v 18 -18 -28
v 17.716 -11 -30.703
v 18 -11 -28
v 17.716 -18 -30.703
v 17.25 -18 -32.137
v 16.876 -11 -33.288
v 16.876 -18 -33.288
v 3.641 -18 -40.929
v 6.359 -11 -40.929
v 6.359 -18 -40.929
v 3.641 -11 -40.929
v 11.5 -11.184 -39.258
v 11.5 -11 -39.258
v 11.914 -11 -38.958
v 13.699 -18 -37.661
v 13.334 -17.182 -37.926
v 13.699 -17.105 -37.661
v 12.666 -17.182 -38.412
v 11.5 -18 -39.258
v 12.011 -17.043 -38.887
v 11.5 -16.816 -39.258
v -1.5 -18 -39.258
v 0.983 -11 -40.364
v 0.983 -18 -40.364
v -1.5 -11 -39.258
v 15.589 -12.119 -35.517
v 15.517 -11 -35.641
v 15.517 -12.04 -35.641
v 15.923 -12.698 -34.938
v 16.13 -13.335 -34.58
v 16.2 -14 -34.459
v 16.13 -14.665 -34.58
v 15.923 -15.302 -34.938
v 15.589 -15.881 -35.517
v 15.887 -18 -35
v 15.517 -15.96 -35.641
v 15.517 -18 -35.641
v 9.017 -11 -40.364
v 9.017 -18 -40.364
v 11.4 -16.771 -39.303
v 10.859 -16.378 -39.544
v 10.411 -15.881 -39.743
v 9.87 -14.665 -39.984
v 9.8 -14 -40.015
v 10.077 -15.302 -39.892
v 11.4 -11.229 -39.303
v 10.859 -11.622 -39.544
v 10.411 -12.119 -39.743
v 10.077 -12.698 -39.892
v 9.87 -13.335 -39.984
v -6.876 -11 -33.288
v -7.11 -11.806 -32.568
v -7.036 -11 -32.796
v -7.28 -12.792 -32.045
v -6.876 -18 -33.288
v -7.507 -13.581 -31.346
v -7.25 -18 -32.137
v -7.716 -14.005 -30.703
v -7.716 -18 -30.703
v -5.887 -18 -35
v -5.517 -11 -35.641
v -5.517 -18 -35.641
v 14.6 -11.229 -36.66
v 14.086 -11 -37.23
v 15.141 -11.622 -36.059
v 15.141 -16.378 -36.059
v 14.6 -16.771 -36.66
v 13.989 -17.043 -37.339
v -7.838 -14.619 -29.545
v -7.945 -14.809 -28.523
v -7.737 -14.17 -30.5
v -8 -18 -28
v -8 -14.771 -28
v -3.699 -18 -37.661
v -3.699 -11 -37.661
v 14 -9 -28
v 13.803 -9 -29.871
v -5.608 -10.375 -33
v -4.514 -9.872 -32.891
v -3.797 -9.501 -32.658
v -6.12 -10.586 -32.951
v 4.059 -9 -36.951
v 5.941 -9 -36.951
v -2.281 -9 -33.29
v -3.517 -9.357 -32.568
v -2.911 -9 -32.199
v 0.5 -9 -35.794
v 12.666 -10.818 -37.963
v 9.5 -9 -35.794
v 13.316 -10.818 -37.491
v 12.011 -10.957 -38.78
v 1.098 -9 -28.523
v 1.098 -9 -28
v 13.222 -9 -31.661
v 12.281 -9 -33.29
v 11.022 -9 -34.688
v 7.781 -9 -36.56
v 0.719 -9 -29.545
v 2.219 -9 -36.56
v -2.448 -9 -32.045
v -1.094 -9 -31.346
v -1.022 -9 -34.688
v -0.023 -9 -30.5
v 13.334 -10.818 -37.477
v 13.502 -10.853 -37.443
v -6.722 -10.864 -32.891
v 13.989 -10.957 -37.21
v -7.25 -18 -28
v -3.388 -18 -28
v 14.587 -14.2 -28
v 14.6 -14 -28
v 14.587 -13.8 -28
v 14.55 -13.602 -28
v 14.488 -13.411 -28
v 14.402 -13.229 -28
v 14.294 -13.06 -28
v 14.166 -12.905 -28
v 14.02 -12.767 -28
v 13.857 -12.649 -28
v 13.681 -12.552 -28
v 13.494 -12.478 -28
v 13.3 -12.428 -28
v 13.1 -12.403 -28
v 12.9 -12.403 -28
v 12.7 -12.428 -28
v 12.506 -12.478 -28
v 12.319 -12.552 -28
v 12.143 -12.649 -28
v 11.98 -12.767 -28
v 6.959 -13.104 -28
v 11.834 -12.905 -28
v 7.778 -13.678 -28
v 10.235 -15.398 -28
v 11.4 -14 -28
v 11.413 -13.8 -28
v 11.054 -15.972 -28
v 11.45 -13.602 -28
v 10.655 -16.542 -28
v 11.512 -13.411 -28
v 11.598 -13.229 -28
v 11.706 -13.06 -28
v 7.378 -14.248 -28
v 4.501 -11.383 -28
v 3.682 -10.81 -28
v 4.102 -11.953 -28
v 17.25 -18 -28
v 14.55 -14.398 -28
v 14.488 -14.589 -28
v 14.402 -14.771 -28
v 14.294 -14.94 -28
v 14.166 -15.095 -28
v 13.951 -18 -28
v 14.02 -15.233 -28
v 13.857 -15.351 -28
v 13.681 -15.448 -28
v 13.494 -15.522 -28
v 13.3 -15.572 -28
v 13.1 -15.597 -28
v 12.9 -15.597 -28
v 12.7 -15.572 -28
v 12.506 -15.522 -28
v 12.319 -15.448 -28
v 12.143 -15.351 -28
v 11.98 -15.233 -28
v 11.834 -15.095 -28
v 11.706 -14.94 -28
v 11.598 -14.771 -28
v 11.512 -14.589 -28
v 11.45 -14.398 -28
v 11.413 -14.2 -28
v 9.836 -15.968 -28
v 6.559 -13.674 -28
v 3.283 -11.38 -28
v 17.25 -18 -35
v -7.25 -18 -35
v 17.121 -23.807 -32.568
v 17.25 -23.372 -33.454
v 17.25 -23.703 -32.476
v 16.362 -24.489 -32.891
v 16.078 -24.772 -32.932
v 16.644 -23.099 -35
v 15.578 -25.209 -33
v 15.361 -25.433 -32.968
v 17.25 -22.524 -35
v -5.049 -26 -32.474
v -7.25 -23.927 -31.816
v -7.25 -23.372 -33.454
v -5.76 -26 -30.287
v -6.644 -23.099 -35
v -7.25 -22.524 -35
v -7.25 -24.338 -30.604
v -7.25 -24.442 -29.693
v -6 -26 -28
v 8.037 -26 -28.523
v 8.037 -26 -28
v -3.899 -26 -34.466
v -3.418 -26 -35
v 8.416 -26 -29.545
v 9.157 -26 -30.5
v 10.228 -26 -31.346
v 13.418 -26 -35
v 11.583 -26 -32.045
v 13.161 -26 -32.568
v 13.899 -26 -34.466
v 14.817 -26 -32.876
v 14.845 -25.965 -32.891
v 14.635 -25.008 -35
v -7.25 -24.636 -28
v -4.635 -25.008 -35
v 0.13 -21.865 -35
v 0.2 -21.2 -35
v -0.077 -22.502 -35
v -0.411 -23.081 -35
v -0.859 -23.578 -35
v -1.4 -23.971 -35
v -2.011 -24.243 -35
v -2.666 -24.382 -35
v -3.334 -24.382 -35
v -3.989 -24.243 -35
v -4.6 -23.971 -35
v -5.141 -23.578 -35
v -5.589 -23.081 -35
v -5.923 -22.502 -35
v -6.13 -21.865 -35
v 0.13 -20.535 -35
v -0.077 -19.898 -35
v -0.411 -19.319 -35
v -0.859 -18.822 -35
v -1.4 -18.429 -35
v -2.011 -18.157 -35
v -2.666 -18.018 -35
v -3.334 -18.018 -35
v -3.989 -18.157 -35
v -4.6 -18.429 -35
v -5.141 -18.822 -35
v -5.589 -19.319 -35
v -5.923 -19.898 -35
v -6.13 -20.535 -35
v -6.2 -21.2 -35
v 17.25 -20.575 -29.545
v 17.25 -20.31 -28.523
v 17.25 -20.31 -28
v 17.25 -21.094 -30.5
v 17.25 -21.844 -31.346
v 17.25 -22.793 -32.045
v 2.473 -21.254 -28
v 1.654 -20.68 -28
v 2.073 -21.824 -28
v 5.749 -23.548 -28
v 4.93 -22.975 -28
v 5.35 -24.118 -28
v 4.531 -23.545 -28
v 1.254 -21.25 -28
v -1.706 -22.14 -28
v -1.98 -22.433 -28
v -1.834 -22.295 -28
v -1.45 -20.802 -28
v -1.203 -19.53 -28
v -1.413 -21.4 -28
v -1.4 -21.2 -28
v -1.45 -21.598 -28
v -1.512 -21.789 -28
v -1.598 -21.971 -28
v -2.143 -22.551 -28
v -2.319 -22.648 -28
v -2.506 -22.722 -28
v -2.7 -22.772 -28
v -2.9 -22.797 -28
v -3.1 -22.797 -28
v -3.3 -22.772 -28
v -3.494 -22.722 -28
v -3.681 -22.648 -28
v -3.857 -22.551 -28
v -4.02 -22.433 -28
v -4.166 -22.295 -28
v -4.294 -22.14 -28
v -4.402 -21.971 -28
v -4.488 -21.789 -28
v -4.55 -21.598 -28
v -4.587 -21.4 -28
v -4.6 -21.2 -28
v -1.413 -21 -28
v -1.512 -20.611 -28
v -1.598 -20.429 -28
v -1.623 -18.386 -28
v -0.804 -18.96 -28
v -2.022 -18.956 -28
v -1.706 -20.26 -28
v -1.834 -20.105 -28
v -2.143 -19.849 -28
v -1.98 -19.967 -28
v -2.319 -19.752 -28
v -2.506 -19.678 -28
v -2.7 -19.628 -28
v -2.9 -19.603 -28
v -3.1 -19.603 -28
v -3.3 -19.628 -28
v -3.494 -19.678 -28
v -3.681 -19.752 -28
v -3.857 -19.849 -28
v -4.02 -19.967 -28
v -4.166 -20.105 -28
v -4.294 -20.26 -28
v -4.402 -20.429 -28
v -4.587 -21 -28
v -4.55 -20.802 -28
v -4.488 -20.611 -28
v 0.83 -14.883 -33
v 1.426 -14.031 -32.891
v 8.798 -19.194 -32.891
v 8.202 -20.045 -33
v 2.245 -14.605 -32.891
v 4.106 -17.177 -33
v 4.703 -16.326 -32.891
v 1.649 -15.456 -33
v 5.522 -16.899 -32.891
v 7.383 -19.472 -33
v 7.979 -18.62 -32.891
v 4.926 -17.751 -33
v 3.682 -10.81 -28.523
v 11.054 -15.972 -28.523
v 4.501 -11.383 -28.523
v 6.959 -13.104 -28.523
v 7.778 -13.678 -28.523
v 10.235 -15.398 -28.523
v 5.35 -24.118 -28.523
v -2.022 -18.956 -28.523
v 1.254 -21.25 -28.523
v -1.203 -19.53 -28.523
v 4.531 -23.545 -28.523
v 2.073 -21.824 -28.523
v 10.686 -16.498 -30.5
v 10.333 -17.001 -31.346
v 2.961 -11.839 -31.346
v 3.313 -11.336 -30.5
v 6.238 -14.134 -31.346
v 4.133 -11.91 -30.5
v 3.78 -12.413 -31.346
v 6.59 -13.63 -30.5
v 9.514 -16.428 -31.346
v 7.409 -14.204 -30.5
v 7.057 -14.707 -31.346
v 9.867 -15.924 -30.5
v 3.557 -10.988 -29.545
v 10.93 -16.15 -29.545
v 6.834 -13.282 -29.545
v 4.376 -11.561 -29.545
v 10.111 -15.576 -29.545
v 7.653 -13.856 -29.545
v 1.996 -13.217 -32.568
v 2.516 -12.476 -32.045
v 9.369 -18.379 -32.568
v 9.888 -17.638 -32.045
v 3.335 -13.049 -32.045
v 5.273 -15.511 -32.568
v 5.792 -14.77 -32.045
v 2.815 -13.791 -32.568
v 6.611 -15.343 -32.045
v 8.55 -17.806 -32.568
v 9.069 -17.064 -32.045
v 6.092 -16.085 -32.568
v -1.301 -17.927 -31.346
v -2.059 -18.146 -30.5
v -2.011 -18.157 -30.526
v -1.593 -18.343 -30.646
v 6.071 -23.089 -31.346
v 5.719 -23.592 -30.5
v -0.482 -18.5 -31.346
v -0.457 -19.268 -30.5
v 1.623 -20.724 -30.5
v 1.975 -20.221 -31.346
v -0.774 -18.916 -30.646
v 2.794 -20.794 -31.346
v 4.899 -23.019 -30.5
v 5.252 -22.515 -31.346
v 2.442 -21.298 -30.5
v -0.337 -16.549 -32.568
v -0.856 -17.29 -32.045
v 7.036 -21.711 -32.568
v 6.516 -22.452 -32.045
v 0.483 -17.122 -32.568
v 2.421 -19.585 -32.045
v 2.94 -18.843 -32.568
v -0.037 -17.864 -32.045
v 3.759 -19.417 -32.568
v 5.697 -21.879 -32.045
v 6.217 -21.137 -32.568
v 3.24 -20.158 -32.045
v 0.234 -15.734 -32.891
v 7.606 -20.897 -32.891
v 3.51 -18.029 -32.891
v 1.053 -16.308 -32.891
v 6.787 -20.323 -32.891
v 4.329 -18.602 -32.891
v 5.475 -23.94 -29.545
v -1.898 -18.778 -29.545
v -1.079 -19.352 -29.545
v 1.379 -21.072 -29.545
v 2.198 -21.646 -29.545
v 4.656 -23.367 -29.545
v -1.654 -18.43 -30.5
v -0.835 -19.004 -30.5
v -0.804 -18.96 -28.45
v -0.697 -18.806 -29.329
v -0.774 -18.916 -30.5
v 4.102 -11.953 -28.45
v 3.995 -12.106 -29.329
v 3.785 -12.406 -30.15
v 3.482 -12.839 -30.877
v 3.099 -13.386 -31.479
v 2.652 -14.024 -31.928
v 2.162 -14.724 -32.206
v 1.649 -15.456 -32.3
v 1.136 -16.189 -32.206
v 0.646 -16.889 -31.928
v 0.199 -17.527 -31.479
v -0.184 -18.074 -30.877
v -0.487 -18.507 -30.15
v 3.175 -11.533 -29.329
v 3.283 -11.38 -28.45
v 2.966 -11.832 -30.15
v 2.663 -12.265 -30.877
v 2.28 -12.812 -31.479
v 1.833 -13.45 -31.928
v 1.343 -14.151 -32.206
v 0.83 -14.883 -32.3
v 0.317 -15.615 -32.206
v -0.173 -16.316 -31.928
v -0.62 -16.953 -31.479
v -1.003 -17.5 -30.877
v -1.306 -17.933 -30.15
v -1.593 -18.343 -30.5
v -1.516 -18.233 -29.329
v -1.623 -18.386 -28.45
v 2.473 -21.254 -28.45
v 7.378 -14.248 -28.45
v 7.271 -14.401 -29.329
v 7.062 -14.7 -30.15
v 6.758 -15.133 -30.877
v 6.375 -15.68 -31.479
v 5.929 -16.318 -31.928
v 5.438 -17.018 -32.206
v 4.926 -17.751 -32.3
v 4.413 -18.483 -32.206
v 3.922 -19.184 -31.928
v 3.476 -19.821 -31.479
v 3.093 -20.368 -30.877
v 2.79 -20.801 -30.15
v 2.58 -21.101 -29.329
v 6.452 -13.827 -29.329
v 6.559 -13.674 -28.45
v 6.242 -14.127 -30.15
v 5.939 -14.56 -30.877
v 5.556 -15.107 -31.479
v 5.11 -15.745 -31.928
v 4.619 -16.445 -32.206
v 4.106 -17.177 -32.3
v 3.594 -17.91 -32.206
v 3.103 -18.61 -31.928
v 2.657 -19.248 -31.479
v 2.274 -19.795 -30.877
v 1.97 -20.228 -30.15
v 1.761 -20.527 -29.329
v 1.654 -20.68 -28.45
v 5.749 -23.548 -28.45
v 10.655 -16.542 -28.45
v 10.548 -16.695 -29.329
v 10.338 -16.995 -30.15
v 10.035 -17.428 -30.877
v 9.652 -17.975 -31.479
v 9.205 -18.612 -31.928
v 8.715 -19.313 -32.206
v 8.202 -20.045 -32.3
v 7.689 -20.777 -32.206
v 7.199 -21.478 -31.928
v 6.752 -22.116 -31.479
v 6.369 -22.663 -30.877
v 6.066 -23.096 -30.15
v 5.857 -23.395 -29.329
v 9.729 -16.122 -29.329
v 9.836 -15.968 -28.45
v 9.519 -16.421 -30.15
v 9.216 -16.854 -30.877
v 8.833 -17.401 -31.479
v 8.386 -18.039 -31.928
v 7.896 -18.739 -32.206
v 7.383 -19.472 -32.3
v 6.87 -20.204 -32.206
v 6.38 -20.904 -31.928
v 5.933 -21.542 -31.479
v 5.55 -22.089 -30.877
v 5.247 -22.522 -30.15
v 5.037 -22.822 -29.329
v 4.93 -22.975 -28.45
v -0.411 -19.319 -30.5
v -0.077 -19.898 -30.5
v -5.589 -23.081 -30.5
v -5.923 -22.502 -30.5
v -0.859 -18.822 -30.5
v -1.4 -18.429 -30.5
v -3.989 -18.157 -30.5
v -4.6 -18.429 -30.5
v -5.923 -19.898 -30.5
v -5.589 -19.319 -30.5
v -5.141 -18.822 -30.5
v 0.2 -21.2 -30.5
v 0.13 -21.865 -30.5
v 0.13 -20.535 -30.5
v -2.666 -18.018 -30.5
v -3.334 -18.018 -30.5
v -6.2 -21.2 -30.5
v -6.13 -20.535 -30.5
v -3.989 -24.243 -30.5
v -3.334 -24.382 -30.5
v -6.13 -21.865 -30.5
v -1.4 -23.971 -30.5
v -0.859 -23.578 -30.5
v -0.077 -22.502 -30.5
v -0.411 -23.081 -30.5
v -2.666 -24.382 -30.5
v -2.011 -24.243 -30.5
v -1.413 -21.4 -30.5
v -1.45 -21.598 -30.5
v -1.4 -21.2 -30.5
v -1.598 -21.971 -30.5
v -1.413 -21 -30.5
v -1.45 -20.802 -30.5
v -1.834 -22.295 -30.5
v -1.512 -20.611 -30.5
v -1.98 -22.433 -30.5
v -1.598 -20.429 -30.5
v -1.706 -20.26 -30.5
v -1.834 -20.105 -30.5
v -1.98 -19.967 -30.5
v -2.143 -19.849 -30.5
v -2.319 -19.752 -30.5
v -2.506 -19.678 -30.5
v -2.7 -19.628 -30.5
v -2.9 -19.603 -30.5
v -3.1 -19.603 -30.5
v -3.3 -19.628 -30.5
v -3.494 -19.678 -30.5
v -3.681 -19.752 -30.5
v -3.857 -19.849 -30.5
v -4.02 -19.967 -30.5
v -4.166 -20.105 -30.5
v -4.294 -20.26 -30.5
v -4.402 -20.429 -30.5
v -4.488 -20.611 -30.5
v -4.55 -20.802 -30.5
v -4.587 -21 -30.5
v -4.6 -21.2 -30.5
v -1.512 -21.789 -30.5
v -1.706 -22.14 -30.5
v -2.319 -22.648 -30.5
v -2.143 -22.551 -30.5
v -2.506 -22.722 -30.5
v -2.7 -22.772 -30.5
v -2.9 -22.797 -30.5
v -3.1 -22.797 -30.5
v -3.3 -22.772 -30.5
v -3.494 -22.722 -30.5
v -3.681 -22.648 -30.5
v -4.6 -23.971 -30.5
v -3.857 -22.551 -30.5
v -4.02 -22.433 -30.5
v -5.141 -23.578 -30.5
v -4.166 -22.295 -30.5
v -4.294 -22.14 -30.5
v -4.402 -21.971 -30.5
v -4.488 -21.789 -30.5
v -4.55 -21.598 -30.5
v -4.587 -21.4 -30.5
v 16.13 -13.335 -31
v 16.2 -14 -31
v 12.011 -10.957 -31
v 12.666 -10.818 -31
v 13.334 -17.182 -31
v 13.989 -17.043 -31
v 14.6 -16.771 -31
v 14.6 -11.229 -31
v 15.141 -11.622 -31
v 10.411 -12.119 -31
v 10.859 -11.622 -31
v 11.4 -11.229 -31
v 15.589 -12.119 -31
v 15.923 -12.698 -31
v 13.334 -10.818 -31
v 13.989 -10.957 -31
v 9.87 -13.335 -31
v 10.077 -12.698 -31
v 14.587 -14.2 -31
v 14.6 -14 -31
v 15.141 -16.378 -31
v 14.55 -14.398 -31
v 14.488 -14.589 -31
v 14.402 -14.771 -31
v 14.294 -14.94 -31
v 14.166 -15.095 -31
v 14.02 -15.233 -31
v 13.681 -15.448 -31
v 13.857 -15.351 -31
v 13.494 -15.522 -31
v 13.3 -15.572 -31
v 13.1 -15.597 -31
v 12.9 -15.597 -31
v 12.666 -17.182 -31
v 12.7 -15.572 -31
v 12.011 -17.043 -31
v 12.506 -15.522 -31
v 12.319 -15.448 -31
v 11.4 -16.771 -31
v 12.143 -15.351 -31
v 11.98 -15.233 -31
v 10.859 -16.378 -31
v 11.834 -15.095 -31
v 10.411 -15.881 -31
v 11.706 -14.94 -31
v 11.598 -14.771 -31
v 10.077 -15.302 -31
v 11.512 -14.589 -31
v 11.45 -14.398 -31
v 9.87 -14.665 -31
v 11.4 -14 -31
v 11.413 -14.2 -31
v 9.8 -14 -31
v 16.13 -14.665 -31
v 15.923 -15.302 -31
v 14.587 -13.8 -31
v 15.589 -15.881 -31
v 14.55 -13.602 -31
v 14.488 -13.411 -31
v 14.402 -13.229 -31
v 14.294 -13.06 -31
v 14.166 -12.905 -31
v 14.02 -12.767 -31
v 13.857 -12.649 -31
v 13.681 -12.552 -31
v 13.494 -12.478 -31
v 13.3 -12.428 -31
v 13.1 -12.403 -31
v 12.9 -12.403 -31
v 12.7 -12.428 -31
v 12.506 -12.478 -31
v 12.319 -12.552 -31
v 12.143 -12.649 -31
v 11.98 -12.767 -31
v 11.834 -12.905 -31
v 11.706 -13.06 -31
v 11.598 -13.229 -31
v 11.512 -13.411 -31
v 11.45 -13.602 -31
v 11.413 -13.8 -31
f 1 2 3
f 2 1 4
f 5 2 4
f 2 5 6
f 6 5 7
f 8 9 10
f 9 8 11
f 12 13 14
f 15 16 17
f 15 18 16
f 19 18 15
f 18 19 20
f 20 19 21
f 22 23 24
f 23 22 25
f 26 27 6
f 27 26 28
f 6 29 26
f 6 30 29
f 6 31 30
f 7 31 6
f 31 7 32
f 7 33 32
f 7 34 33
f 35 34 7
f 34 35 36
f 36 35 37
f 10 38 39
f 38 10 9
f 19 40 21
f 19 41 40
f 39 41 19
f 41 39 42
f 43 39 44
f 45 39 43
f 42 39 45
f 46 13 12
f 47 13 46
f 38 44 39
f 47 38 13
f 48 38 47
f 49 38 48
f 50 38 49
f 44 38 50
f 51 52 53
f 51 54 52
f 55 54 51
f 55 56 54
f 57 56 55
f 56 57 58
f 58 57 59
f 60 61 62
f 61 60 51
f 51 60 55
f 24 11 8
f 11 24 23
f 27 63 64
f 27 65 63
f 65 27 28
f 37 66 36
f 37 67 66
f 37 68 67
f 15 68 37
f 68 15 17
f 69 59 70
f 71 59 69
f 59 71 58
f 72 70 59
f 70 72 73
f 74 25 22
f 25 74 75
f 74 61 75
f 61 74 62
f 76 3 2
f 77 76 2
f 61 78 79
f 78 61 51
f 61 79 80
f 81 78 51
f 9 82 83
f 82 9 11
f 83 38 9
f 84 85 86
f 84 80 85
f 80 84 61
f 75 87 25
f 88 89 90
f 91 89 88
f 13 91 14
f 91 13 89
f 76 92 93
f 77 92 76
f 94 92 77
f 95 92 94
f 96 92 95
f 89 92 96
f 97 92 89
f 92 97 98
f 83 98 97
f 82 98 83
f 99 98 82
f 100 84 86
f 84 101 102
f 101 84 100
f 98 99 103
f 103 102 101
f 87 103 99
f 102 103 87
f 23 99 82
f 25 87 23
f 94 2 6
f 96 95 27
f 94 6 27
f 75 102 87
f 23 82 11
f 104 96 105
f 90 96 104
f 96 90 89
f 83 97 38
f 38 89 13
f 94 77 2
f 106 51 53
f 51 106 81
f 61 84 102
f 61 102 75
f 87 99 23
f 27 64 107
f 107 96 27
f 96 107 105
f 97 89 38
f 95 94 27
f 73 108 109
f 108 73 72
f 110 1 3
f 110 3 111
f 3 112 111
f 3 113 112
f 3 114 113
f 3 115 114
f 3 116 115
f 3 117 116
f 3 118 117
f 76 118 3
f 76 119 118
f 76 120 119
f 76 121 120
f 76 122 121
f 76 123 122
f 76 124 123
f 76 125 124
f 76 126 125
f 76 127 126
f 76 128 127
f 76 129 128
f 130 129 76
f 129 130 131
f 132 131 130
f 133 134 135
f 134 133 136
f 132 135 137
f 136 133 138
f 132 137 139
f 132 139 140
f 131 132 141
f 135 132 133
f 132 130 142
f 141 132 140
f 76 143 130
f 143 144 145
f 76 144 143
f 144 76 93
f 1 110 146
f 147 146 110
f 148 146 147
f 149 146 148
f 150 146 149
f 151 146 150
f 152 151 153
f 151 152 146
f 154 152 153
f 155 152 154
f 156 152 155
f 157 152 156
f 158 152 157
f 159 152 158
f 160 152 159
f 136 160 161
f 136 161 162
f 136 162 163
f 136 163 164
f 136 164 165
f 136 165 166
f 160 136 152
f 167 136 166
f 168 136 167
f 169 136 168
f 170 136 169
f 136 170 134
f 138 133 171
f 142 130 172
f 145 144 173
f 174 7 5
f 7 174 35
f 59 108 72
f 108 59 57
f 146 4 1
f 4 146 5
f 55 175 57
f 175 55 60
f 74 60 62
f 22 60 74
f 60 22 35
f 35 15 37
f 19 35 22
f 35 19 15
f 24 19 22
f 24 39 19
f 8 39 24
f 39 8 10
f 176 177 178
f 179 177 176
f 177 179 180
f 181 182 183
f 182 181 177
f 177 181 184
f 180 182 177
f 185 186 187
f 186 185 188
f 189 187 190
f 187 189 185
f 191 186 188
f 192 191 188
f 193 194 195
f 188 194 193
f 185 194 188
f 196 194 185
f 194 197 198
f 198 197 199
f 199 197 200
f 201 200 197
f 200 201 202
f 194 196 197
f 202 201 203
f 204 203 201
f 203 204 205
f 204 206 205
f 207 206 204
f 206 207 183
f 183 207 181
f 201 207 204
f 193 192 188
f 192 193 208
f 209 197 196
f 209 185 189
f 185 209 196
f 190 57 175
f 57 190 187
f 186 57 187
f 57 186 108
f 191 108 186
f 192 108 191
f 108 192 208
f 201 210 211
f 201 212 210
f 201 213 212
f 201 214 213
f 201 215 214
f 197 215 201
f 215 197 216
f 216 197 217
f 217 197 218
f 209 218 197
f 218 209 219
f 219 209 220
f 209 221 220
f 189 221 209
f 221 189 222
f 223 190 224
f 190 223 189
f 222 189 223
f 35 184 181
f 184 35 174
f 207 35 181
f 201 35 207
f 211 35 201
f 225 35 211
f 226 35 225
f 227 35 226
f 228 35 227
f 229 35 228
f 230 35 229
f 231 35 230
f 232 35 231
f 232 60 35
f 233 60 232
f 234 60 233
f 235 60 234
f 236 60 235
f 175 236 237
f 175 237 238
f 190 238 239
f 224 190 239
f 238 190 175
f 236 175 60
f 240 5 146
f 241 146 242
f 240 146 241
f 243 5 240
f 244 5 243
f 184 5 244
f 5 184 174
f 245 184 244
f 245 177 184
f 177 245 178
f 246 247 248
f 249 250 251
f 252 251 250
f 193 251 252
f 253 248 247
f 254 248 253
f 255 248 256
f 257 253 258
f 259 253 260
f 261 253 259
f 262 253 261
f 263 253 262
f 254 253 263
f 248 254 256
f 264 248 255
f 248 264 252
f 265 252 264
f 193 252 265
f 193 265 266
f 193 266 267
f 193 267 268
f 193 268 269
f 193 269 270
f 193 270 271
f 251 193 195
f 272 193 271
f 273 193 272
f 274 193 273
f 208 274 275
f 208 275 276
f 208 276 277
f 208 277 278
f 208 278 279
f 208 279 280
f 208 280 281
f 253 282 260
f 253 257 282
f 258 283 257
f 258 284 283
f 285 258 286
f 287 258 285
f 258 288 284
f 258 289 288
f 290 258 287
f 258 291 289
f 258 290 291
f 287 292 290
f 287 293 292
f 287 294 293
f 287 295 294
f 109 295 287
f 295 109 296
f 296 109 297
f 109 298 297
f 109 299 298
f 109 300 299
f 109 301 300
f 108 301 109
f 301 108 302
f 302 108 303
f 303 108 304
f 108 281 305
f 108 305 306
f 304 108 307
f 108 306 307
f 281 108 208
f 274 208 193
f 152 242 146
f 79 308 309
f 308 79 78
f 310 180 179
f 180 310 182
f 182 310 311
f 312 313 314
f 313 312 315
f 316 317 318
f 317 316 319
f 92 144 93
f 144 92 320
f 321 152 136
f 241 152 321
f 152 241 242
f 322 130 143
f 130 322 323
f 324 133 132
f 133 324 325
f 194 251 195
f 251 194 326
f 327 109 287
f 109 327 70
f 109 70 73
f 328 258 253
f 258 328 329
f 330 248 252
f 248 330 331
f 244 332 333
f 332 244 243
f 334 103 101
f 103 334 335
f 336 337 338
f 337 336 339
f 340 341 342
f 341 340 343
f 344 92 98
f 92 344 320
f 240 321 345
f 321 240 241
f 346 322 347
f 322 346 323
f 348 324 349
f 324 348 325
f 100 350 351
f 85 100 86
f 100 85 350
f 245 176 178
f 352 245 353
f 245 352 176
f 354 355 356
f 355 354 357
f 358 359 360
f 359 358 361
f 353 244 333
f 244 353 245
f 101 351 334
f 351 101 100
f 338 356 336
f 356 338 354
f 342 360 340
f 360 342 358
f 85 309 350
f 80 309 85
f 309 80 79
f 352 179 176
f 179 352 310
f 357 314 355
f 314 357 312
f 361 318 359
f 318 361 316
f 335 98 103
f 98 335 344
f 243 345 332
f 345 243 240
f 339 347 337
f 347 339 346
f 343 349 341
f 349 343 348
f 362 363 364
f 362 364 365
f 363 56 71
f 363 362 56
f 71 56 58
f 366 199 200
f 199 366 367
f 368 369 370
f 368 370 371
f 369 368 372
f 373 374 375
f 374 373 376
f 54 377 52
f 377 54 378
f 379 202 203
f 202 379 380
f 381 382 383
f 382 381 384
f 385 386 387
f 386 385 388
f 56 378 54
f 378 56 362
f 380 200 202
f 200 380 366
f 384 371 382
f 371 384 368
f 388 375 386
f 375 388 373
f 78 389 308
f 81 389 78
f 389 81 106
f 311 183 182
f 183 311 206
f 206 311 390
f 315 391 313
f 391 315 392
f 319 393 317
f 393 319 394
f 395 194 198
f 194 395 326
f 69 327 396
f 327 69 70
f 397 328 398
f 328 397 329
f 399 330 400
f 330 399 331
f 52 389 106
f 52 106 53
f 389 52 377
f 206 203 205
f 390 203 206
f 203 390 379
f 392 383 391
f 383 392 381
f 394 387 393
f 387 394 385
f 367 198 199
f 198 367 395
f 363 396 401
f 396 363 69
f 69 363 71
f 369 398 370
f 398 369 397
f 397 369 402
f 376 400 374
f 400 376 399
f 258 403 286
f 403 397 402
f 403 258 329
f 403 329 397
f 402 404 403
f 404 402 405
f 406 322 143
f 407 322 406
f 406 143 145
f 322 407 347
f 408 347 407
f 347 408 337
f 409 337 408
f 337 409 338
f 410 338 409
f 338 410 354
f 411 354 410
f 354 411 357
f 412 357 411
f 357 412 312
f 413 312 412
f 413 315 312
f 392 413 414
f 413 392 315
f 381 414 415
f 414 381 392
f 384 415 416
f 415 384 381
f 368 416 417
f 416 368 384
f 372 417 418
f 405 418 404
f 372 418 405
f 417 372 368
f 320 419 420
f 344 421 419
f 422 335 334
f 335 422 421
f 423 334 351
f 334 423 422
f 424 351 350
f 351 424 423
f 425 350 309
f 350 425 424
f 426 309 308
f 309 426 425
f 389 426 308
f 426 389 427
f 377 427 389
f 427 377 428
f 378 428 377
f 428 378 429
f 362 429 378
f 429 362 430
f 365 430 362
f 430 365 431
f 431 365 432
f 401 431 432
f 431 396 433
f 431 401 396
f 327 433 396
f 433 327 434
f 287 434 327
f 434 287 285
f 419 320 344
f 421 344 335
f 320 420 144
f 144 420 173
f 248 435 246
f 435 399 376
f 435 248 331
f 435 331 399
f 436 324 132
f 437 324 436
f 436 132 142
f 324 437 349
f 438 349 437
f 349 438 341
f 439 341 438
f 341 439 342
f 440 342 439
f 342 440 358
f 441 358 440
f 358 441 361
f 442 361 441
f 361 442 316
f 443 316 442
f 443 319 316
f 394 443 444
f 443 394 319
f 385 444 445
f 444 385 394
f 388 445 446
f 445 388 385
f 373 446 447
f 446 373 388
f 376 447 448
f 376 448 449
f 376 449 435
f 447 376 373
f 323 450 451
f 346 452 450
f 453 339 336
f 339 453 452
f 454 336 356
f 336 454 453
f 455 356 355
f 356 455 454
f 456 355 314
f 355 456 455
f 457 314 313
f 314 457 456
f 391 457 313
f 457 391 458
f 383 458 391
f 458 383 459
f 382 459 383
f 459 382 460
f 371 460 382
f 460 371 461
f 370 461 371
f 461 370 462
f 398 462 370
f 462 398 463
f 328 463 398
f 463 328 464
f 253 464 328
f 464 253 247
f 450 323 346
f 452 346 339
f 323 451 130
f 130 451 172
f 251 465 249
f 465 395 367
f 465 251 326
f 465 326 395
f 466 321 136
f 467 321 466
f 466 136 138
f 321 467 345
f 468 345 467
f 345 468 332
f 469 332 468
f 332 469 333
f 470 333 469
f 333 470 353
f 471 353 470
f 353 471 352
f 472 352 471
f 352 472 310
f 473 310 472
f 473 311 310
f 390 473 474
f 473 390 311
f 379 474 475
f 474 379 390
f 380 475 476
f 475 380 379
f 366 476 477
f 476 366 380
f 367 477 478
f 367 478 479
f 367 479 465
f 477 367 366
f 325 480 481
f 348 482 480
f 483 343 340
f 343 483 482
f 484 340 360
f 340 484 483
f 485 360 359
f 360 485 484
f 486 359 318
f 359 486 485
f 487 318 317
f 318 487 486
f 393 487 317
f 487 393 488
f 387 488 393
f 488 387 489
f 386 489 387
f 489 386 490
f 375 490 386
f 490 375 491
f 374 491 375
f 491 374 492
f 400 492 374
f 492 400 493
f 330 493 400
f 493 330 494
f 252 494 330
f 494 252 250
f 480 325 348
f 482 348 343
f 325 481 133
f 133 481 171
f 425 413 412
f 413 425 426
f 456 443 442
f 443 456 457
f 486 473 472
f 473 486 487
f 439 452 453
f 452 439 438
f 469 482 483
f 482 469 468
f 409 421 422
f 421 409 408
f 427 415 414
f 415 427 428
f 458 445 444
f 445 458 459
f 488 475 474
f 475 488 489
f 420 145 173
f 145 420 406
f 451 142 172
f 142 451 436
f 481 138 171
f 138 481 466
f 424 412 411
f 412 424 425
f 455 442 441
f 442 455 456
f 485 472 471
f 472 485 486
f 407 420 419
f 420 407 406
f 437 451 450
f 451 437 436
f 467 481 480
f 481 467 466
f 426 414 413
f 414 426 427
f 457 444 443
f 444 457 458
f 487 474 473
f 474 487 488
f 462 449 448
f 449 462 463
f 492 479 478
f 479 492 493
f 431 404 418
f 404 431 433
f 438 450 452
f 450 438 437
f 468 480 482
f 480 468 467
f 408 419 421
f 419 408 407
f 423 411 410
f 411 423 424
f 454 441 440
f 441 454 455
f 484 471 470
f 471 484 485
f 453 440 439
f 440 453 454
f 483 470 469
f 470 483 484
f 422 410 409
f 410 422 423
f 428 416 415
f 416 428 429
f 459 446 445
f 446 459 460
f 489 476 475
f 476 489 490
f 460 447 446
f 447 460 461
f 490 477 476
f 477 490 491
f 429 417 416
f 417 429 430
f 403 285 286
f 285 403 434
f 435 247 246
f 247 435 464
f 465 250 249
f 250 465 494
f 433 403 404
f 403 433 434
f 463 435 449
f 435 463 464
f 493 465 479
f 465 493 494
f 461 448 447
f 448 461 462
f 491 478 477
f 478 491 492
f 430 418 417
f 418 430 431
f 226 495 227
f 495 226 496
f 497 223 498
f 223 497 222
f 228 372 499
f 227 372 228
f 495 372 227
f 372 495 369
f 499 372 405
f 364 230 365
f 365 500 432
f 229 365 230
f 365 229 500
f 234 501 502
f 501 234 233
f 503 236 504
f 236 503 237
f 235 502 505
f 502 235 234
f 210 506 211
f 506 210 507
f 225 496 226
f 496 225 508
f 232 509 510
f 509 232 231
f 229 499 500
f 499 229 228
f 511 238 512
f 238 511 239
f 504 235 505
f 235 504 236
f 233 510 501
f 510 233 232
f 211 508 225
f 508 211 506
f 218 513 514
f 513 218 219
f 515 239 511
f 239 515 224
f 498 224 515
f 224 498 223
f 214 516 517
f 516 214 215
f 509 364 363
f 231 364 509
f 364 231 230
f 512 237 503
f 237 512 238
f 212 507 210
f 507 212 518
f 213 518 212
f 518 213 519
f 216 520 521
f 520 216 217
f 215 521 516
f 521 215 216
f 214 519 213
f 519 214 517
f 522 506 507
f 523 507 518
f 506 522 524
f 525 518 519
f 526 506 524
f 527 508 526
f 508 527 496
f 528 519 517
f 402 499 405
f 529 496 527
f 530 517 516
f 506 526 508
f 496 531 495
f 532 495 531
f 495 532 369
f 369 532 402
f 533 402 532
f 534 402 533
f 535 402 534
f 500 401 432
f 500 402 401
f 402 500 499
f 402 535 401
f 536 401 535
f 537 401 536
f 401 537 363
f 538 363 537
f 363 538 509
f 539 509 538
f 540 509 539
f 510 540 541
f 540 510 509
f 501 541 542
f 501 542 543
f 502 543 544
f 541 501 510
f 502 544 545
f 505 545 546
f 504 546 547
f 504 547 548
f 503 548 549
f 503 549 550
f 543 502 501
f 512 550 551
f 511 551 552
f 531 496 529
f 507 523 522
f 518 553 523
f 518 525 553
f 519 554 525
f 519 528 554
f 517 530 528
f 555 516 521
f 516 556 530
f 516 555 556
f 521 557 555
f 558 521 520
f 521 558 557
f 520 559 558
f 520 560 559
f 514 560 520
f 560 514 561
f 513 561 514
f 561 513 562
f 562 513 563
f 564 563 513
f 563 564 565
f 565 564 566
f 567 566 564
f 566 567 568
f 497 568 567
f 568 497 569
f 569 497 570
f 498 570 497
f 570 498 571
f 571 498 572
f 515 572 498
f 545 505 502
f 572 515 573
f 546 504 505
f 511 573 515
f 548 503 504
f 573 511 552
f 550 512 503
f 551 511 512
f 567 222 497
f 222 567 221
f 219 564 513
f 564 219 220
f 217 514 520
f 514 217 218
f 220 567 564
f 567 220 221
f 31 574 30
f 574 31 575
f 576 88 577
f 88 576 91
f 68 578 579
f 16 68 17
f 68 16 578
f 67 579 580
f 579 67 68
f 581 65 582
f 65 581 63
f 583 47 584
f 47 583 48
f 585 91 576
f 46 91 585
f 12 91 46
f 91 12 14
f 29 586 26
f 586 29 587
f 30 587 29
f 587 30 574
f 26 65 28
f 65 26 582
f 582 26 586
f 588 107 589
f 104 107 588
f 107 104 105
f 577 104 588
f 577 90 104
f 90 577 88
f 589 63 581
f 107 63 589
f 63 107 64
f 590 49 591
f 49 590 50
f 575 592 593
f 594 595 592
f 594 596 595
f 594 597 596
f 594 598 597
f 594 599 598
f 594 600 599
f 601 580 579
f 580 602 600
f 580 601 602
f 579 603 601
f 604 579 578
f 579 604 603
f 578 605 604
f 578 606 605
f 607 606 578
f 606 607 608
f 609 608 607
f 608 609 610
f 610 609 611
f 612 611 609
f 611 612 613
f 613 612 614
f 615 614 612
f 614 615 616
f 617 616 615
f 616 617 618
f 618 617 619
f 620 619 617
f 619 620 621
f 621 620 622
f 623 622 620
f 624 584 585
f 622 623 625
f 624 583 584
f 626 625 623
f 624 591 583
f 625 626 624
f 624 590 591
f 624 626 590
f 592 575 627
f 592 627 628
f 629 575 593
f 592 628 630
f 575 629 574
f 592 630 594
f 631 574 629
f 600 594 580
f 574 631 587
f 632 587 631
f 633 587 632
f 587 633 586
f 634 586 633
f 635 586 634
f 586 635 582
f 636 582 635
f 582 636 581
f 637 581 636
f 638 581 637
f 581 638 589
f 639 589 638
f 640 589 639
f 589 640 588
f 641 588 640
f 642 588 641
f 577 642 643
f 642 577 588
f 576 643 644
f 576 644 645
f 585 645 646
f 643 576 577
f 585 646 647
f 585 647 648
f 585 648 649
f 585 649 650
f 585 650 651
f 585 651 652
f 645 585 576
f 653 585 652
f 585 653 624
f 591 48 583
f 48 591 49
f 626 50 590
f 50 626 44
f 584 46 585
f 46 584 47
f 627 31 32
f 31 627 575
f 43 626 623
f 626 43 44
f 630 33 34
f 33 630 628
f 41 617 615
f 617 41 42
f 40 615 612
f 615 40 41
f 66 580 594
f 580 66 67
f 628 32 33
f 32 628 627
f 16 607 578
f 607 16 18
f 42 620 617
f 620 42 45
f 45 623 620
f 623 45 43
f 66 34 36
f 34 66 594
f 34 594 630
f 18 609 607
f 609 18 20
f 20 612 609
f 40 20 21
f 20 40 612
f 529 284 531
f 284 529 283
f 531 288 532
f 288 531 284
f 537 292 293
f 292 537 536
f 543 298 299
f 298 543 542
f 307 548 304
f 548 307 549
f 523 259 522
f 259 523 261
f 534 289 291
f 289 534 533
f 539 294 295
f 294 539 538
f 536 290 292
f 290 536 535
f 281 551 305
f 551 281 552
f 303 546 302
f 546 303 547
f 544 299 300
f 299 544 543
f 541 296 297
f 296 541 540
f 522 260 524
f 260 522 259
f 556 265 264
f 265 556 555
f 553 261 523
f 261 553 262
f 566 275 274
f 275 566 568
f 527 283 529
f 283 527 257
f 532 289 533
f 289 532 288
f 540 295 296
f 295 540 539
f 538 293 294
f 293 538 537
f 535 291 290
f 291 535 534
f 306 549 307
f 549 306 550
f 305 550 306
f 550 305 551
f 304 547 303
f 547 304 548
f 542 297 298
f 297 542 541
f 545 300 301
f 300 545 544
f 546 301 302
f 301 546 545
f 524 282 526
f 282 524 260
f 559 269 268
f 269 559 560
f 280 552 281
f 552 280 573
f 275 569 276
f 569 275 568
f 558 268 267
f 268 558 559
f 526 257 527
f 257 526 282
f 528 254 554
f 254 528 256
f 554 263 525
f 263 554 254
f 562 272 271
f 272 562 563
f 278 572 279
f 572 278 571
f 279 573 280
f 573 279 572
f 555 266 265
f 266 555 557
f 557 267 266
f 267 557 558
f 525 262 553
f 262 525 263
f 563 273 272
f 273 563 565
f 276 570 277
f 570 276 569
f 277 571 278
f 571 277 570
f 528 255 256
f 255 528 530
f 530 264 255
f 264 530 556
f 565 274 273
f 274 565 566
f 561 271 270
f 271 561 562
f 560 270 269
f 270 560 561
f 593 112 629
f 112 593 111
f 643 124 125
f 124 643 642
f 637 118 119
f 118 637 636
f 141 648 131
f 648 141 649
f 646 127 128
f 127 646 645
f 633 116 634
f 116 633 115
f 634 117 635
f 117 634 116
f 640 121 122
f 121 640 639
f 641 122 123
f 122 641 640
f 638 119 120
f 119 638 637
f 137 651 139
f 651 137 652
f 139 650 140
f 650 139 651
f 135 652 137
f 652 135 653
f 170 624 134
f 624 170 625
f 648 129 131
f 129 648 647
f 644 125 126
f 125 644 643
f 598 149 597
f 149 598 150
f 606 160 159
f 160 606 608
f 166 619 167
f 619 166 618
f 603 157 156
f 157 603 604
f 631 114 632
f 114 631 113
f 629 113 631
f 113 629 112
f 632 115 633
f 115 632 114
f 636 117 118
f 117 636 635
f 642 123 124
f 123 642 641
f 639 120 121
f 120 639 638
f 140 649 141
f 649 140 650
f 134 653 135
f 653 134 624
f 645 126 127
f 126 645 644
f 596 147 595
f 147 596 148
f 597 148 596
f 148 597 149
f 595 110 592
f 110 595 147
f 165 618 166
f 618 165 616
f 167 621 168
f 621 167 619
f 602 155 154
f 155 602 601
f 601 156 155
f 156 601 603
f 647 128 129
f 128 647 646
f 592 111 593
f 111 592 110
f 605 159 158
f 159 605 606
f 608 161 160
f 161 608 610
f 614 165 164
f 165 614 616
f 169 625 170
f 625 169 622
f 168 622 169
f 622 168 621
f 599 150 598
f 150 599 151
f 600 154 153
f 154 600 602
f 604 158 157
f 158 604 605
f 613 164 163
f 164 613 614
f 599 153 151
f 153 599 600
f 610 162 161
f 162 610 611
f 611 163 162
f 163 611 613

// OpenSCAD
// PRUSA iteration4
// Heatbed cable clip
// GNU GPL v3
// Josef Průša <iam@josefprusa.cz> and contributors
// http://www.reprap.org/wiki/Prusa_Mendel
// http://prusamendel.org


 module heatbed_cable_clip()
{
    
difference()
{    
    
    union()
    {
        difference()
        {
            union()
            {
                // body base
                translate([75,99,28]) rotate([90,0,0]) cylinder( h = 15, r = 13, $fn=30); 
                translate([75,101,28]) rotate([90,0,0]) cylinder( h = 2, r1=9,r2 = 13, $fn=30); 
                
            }

             
           
            
            // cut flat and shape
            translate([60,82,14]) cube([30,20,14]);  
            translate([60,72,20]) cube([30,20,30]); 
        }
         
        
        difference() {
        translate([62.75,84,28]) cube([24.5,8,7]);
        difference () {
        translate([75,85,28]) rotate([90,0,0]) cube([30,20,10], center = true);    
        translate([75,90,28]) rotate([90,0,0]) cylinder(h=6,r1=16.5,r2=11,$fn=30);   
           
        } 
    }}
    
    // cable opening
    translate([61,102,28]) rotate([35,90,0])
    
    difference (){
   
    cylinder(h=35,r=5,$fn=30);
       
    
    //translate([0,0,3]) cylinder(h=5,r=5,$fn=30);
    translate([0,0,12]) cylinder(h=1,r=5,$fn=30); 
    translate([0,0,16]) cylinder(h=1,r=5,$fn=30); 
    translate([0,0,20]) cylinder(h=1,r=5,$fn=30);
   
    }
     translate([61,102,28]) rotate([35,90,0]) cylinder(h=35,r=4.3,$fn=30);
    
  
    
    // screw heads
    translate([67,88.8,30.5]) rotate([0,0,0]) cylinder(h=10,r=3.2,$fn=30); 
    translate([83,96,31]) rotate([0,0,0]) cylinder(h=10,r=3.2,$fn=30); 
    
    
    // screws
            translate([67,88.8,14]) rotate([0,0,0]) cylinder(h=35,r=1.6,$fn=50); 
            translate([83,96,14]) rotate([0,0,0]) cylinder(h=35,r=1.6,$fn=50);
    

    
    
    
}


    

} 
mirror([0, 0, -1])
translate([-70,-110,0]) heatbed_cable_clip();
